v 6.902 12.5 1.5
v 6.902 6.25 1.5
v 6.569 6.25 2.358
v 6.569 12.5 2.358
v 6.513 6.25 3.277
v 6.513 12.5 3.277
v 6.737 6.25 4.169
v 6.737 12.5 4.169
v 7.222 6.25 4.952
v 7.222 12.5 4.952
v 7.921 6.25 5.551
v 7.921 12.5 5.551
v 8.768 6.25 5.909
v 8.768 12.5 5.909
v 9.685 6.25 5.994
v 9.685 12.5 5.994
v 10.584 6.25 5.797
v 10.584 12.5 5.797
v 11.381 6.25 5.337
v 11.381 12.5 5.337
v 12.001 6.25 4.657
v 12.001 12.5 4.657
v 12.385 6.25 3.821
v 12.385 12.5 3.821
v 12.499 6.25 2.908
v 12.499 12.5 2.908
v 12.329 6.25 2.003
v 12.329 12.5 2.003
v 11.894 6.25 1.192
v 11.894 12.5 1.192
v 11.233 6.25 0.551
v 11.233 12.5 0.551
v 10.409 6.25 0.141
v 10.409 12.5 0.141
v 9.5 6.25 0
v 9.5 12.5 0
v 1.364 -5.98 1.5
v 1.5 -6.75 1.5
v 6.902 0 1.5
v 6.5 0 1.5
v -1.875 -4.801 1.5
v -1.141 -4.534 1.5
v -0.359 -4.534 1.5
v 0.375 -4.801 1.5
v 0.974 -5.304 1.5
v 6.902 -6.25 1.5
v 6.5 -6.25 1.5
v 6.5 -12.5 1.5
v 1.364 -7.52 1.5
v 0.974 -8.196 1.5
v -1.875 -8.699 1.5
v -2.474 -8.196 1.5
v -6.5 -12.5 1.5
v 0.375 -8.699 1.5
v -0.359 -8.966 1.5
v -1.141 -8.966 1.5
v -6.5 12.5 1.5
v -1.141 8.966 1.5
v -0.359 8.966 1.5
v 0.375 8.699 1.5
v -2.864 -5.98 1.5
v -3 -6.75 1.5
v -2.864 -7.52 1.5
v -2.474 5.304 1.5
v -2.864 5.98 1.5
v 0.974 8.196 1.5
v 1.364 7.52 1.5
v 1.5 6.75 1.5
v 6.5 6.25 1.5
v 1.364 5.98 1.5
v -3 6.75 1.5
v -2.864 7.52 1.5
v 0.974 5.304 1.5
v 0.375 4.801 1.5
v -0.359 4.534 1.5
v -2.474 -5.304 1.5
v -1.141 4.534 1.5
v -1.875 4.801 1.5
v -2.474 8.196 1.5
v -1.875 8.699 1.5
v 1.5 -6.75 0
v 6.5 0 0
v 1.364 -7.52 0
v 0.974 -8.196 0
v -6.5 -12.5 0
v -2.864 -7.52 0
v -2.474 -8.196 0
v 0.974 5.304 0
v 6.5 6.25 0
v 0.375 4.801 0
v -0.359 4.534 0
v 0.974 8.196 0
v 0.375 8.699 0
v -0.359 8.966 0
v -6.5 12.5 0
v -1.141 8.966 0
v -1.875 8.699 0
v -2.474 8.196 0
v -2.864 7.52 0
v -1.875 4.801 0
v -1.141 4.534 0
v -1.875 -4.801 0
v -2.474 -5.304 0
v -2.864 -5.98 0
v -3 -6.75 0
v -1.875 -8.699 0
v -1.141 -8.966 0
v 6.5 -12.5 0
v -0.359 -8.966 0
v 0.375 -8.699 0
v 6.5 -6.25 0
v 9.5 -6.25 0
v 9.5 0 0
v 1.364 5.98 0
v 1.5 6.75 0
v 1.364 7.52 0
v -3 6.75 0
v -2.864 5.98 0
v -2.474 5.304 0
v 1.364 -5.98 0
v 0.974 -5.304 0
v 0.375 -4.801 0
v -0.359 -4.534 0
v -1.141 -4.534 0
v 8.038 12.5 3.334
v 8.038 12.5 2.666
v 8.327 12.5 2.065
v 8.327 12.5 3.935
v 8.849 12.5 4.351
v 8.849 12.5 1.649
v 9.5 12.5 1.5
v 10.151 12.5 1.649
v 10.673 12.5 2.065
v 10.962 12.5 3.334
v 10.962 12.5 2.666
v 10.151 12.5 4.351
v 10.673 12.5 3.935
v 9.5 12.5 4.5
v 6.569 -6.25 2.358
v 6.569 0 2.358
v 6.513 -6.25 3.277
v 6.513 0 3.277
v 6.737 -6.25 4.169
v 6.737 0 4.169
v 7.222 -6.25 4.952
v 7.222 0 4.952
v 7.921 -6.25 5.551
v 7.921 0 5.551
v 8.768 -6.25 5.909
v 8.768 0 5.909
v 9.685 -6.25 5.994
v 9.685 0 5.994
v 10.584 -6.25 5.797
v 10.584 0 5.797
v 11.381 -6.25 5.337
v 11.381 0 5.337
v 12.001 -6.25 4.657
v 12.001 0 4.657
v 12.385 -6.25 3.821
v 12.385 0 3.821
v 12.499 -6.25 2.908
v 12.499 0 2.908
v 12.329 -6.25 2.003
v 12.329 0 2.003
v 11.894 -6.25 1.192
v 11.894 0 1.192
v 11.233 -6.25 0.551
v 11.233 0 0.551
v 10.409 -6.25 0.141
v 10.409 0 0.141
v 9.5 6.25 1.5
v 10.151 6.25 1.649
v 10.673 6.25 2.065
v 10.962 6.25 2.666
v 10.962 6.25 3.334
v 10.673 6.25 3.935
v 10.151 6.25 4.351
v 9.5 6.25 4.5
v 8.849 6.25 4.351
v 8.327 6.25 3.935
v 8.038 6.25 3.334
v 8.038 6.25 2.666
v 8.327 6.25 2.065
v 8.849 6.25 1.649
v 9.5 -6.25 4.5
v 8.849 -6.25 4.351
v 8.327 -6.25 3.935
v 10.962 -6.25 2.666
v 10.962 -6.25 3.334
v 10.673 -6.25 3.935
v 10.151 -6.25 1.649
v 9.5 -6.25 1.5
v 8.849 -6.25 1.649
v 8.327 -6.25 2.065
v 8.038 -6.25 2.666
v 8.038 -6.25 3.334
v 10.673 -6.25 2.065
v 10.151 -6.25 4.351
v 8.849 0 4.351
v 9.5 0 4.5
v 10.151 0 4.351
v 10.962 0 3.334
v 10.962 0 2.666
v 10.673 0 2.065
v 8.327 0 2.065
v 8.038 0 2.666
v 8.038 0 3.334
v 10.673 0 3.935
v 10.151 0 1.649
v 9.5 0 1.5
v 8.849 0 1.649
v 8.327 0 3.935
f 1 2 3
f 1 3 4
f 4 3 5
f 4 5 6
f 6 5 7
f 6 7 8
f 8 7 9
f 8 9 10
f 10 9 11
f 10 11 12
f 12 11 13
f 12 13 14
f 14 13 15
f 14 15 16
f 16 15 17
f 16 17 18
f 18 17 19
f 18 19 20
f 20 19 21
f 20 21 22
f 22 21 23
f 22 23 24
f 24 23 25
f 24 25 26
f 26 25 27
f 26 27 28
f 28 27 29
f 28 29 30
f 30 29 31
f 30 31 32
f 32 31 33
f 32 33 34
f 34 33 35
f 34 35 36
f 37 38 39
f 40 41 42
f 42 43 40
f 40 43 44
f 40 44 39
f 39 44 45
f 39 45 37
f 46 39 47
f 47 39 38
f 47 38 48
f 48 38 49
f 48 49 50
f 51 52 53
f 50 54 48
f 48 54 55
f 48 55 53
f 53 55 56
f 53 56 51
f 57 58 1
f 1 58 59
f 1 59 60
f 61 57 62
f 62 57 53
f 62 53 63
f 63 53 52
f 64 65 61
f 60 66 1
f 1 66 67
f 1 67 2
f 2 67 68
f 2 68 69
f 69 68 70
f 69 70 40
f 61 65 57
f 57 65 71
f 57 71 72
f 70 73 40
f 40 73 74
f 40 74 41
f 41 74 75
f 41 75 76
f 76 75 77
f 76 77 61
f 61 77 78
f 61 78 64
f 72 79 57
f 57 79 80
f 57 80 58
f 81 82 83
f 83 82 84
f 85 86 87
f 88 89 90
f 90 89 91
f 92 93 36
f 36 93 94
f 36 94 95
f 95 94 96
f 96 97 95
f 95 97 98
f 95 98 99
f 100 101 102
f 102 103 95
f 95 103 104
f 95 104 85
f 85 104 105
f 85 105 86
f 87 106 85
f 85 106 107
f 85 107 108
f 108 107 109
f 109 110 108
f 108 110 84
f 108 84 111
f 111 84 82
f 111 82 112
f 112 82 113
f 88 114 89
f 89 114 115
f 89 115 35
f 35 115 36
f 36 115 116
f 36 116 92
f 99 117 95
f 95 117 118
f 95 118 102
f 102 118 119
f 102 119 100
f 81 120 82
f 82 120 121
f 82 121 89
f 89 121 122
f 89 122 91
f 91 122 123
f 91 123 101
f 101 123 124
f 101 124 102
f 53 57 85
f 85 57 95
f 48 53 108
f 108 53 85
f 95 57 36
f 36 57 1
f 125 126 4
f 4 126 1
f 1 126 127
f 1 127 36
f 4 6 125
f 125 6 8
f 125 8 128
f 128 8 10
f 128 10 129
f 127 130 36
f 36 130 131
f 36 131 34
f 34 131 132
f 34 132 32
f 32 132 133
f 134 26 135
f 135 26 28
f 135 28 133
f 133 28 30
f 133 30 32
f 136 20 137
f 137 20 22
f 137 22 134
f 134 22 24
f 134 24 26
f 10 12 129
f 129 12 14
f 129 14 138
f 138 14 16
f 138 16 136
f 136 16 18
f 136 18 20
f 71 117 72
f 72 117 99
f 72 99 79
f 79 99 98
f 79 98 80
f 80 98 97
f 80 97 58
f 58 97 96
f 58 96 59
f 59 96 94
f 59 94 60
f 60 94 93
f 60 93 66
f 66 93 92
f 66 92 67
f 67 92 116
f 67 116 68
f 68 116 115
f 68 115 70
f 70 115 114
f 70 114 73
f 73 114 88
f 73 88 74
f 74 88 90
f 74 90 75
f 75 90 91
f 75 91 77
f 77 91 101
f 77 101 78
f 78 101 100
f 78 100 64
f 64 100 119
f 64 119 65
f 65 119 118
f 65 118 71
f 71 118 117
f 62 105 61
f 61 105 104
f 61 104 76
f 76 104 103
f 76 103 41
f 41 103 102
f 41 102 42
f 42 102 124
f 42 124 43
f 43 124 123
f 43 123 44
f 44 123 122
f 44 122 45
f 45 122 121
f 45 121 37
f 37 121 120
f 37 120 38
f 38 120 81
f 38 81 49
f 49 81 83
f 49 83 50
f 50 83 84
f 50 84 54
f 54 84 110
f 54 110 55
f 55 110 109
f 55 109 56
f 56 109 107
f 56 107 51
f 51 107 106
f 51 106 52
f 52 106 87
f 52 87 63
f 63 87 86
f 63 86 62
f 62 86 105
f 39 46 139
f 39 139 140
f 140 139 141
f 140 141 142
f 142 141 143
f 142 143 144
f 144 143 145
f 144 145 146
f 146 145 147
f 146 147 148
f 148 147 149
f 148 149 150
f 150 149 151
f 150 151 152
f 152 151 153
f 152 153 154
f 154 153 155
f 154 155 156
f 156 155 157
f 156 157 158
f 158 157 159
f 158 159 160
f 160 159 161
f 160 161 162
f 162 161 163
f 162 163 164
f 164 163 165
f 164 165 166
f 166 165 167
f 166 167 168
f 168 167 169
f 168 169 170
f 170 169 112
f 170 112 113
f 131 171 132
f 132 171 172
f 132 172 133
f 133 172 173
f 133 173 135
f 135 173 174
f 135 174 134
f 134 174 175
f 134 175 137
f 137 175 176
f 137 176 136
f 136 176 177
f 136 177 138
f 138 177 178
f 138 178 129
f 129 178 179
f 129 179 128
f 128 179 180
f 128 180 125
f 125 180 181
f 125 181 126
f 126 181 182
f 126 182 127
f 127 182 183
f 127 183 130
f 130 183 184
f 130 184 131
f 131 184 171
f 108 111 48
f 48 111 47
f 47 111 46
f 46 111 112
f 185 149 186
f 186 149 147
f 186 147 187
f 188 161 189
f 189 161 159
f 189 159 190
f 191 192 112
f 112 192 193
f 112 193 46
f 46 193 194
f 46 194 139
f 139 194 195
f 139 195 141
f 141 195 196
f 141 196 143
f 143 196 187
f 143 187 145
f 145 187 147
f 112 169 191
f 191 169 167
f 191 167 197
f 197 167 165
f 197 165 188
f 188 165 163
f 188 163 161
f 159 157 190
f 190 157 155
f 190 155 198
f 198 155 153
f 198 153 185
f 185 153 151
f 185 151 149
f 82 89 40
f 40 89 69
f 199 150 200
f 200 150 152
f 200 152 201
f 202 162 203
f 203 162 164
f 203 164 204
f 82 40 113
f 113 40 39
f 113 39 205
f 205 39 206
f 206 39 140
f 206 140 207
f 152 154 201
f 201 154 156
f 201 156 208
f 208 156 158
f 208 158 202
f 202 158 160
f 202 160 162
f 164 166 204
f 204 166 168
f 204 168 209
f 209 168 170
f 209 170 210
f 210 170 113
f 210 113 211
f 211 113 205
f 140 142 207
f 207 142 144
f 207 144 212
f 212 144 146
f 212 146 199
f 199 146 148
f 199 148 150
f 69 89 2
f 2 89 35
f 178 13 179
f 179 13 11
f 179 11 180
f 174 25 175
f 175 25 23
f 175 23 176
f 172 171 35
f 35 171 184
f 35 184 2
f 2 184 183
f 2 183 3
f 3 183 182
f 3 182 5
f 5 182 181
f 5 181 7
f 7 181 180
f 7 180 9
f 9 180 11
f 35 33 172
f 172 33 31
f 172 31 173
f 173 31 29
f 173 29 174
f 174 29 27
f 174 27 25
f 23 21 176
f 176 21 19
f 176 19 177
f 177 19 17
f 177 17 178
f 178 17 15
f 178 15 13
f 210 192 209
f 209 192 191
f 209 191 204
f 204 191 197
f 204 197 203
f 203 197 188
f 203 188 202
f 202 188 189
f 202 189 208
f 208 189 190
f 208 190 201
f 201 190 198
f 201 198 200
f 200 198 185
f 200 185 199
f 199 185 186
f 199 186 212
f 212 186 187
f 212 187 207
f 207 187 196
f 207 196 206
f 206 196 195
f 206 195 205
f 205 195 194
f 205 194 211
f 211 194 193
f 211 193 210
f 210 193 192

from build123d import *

# Parameters (mm, degrees)
SKETCH_1_W          = 13
SKETCH_1_H          = 25
SKETCH_1_R          = 2.25
EXTRUDE_1_DEPTH     = 1.5
SKETCH_2_R          = 3
SKETCH_2_R_2        = 1.5
EXTRUDE_2_DEPTH     = 25
SKETCH_3_W          = 3
SKETCH_3_H          = 25
EXTRUDE_3_DEPTH     = 1.5
SKETCH_4_W          = 6
SKETCH_4_H          = 6.25
CUT_EXTRUDE_1_DEPTH = 7


with BuildPart() as part:
    # 草图1 → 凸台-拉伸1 (new body)
    with BuildSketch(Plane.XY):
        Rectangle(SKETCH_1_W, SKETCH_1_H)
        with Locations((-0.75, 6.75)):
            Circle(SKETCH_1_R, mode=Mode.SUBTRACT)
        with Locations((-0.75, -6.75)):
            Circle(SKETCH_1_R, mode=Mode.SUBTRACT)
    extrude(amount=EXTRUDE_1_DEPTH)



with BuildPart() as body_2:
    # 草图2 → 凸台-拉伸2 (new body)
    with BuildSketch(Plane.XZ.offset(12.5)):
        with Locations((9.5, 3)):
            Circle(SKETCH_2_R)
        with Locations((9.5, 3)):
            Circle(SKETCH_2_R_2, mode=Mode.SUBTRACT)
    extrude(amount=-EXTRUDE_2_DEPTH)


with BuildPart() as part_1:
    add(part.part)

    add(body_2.part)  # 凸台-拉伸3 merges body 2
    # 草图3 → 凸台-拉伸3 (add)
    with BuildSketch(Plane(origin=(0, 0, 0), x_dir=(-1, 0, 0), z_dir=(0, 0, -1))):
        with Locations((-8, 0)):
            Rectangle(SKETCH_3_W, SKETCH_3_H)
    extrude(amount=-EXTRUDE_3_DEPTH)

    # 草图4 → 切除-拉伸1 (cut, through all)
    with BuildSketch(Plane(origin=(0, 0, 0), x_dir=(-1, 0, 0), z_dir=(0, 0, -1))):
        with Locations((-9.5, -9.375)):
            Rectangle(SKETCH_4_W, SKETCH_4_H)
        with Locations((-9.5, 3.125)):
            Rectangle(SKETCH_4_W, SKETCH_4_H)
    extrude(amount=-CUT_EXTRUDE_1_DEPTH, mode=Mode.SUBTRACT)


solid = part_1.part
